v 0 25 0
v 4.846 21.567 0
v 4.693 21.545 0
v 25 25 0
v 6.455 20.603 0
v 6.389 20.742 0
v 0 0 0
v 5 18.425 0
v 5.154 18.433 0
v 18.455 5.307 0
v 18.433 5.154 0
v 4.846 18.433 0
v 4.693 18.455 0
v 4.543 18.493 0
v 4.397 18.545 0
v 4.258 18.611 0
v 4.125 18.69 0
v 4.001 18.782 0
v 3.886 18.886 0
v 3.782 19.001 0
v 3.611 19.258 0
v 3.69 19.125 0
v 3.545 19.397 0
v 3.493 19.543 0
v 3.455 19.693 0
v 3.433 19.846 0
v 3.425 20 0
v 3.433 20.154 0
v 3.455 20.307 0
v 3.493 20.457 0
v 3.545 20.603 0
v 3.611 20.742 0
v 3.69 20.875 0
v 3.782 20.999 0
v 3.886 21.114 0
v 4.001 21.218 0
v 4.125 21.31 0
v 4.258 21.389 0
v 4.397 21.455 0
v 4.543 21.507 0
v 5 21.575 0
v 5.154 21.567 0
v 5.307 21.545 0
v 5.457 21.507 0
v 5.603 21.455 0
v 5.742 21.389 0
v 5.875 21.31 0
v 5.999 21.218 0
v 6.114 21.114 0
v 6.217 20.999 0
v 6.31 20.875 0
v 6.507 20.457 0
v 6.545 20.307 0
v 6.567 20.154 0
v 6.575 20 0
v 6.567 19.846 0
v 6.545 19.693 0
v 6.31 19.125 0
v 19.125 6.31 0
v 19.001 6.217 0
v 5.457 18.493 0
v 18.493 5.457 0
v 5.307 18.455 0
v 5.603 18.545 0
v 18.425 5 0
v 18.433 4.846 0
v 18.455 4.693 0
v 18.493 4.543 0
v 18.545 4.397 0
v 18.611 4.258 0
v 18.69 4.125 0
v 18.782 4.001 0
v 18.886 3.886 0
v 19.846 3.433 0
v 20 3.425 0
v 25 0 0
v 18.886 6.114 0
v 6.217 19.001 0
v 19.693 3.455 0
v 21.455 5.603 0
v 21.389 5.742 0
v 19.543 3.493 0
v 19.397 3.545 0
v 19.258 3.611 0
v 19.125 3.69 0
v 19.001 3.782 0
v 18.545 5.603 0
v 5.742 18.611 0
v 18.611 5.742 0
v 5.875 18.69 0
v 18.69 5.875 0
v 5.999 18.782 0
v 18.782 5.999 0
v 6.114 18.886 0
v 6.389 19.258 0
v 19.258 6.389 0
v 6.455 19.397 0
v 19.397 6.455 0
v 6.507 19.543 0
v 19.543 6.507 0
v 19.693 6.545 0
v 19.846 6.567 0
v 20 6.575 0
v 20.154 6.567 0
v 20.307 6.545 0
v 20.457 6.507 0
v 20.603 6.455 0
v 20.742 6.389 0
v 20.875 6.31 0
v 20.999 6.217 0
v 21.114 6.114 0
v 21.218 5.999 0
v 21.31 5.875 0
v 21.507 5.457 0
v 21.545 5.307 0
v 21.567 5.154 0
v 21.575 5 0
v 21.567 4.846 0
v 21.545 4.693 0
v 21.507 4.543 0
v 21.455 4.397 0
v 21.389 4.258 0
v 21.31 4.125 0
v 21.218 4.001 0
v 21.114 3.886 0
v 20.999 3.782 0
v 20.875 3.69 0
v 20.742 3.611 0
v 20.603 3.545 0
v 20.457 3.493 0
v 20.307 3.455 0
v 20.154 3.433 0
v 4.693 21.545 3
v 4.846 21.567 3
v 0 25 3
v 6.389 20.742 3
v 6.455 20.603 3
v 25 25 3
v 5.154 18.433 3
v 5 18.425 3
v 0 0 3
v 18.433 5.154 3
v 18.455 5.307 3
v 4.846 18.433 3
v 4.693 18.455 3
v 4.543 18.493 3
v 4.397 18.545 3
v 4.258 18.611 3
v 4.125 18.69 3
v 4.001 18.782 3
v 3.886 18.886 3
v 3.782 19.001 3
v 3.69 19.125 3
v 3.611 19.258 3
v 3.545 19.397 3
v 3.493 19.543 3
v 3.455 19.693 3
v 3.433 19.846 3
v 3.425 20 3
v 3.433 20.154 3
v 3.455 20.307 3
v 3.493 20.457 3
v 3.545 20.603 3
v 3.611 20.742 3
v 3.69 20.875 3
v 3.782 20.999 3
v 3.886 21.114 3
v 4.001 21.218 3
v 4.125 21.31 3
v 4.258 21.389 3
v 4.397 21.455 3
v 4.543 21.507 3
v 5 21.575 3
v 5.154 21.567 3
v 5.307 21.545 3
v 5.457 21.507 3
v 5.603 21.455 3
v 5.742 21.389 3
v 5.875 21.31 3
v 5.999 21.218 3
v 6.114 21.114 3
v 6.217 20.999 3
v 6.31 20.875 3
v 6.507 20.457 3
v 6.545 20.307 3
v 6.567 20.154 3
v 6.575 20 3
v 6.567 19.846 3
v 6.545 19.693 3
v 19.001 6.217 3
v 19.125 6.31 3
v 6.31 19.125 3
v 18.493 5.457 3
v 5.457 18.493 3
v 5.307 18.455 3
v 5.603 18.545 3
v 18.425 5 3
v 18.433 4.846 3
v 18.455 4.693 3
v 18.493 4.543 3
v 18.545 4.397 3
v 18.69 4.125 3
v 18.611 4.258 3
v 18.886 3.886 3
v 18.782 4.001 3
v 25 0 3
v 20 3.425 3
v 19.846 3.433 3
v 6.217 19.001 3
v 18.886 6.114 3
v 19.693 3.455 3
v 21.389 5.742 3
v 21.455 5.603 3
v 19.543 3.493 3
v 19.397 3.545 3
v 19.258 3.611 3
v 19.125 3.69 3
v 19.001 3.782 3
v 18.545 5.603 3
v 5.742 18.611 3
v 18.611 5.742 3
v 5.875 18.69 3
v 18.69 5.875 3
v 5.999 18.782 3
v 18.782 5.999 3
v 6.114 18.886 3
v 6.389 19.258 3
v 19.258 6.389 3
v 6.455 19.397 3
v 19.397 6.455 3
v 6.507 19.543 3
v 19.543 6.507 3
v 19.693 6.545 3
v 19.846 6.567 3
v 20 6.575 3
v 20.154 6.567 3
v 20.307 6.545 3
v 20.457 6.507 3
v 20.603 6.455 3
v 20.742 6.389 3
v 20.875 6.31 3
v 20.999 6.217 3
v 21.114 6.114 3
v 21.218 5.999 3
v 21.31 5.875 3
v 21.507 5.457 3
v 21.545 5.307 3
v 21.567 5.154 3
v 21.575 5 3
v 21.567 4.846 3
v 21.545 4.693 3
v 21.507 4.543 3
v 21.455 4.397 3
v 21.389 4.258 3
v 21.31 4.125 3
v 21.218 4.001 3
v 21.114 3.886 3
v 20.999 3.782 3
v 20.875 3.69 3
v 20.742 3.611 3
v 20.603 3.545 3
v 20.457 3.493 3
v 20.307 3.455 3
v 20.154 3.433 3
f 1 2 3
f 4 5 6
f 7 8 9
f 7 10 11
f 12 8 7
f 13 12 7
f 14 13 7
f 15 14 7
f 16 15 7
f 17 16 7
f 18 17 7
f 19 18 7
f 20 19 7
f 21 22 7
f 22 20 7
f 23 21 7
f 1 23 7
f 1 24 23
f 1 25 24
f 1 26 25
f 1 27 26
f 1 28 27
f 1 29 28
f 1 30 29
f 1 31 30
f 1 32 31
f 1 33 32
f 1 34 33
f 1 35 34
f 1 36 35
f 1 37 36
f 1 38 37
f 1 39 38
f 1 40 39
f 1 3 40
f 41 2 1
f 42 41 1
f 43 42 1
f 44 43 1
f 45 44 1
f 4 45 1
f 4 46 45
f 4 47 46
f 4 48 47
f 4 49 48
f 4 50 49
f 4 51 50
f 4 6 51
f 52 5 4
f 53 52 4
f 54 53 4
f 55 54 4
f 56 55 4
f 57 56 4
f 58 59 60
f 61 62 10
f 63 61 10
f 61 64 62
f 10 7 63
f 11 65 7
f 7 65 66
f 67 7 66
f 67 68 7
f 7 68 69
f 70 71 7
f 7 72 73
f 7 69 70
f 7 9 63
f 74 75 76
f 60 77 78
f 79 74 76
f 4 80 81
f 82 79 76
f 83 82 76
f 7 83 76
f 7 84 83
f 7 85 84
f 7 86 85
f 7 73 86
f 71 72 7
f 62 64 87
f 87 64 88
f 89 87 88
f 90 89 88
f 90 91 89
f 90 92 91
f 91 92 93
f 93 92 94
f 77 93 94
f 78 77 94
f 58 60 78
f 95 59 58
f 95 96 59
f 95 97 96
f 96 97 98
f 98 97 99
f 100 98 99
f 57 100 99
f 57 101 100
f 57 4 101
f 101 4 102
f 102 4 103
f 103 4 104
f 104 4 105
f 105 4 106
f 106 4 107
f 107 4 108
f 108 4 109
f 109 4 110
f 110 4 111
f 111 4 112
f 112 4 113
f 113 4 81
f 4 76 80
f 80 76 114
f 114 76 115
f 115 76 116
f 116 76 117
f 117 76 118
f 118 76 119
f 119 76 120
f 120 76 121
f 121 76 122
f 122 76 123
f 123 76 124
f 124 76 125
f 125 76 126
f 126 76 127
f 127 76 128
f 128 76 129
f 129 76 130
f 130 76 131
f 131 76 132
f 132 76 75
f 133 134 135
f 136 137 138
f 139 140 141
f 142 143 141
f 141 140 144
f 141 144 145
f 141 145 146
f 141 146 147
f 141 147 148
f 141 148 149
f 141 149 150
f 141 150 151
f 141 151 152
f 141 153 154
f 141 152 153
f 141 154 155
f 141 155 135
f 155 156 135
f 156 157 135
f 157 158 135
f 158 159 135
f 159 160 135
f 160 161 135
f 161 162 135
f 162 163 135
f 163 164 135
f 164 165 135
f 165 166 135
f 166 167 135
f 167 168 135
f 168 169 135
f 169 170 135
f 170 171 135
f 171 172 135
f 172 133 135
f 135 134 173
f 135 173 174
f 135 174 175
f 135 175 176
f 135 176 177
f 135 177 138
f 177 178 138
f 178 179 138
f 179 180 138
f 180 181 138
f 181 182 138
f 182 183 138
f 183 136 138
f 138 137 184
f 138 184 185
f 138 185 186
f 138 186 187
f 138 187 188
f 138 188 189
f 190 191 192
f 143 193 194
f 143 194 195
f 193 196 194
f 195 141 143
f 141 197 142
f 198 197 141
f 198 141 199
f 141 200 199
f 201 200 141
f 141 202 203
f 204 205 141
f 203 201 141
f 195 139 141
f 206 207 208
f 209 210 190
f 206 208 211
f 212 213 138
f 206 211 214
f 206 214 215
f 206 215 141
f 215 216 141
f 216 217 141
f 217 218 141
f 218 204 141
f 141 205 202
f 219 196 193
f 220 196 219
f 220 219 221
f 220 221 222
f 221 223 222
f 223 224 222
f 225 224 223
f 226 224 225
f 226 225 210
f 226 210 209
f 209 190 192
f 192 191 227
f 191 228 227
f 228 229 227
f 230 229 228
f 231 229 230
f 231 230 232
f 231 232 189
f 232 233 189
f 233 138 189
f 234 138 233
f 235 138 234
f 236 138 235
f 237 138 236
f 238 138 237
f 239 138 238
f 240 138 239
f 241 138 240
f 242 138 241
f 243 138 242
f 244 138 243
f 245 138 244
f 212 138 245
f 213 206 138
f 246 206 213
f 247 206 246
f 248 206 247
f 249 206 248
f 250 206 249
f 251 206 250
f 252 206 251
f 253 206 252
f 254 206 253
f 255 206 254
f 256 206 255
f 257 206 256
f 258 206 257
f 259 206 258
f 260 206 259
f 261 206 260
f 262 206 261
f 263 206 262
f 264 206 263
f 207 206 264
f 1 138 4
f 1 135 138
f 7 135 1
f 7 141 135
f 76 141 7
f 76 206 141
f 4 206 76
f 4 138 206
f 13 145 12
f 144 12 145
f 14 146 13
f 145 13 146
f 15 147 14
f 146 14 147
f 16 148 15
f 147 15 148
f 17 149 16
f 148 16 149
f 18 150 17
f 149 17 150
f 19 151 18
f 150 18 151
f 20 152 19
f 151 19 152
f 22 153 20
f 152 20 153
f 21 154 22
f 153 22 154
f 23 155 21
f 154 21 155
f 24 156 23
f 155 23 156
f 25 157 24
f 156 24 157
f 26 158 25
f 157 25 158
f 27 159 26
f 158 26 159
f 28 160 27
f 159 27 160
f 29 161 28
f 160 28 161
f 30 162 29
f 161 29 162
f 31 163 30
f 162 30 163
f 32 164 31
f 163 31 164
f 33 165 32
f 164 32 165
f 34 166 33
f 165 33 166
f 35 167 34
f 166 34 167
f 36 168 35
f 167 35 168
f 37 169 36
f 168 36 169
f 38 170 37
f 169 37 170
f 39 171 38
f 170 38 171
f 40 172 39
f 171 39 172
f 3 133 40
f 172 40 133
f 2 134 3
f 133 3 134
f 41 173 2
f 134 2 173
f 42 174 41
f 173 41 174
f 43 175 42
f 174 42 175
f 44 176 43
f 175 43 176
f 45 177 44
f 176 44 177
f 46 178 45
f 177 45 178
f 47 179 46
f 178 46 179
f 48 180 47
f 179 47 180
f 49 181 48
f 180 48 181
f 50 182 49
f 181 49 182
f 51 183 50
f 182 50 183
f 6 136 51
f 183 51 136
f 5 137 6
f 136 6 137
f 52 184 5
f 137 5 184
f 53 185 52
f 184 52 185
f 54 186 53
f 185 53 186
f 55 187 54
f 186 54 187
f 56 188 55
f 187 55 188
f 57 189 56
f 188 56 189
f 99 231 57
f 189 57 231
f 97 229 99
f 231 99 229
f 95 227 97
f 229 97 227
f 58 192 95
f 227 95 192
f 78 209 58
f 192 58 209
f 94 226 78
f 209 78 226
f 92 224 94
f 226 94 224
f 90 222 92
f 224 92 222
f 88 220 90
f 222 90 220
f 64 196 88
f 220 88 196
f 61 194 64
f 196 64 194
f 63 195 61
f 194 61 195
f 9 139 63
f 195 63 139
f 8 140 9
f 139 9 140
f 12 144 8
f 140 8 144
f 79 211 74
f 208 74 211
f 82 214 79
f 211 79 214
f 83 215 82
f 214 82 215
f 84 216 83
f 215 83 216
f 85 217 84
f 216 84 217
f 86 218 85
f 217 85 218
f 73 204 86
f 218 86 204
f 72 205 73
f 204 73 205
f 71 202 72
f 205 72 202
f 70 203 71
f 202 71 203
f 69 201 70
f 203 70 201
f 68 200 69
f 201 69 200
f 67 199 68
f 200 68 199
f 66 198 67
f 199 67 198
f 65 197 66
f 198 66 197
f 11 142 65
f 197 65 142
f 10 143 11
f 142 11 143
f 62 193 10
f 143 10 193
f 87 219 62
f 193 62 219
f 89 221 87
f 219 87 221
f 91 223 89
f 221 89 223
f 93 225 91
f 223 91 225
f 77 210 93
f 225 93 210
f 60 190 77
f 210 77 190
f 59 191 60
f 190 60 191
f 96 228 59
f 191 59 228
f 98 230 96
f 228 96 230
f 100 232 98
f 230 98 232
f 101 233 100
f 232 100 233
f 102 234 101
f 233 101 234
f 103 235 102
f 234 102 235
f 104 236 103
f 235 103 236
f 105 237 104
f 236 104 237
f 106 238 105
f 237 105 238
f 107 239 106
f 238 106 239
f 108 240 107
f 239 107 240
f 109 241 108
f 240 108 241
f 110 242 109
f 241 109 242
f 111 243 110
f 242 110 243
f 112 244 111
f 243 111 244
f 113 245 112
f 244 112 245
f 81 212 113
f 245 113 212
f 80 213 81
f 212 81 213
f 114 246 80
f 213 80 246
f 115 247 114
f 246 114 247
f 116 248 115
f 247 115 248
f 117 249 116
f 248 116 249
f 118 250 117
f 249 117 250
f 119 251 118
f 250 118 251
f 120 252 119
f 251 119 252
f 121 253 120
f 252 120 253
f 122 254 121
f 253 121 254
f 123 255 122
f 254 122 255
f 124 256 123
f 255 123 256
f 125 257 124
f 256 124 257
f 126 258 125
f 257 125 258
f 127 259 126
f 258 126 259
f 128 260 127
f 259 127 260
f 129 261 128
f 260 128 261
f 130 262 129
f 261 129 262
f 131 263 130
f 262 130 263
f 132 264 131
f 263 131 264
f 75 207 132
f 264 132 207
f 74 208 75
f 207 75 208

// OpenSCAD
// file: miniature-bases/common/params.scad
$fn = $preview ? 32 : 64;

// Value of kerf to apply when lasercutting things.
// Value is based on the experience using Epilog Mini machine in
// Google WFC Makerspace.
kerf = 0.2;

// Spacing between insert and miniatures bases to allow to slick fit.
insert_spacing = 0.2;
magnet_spacing = 0.15;

// Default values
//
// Default diameter of magnets used for my miniatures.
default_magnet_diameter = 3;
base_height = 3;
pin_height = 2.5;
// file: miniature-bases/common/kow.scad
include <params.scad>;

module MagnetSockets(unit_type, only_diagonal = false) {
  baseSize = BaseSize(unit_type);

  translate([ 5, baseSize[1] - 5 ]) children(0);
  translate([ baseSize[0] - 5, 5 ]) children(0);

  if (!only_diagonal) {
    translate([ 5, 5 ]) children(0);
    translate([ baseSize[0] - 5, baseSize[1] - 5 ]) children(0);
  }
}

module Magnet(d = default_magnet_diameter, offset = 0) {
  circle(d = d + offset);
}

module BM4Sockets(unit_type, spacing, only_diagonal = false) {
  MagnetSockets(unit_type = unit_type, only_diagonal = only_diagonal) {
    Magnet(offset = spacing);
  }
}

module Base(unit_type, extraMargin = [ 0, 0 ]) {
  square(BaseSize(unit_type) + extraMargin);
}

function BaseSize(unit_type) = unit_type == "infantry"         ? [ 20, 20 ]
                               : unit_type == "heavy_infantry" ? [ 25, 25 ]
                               : unit_type == "cavalry"        ? [ 25, 50 ]
                               : unit_type == "lrginf"         ? [ 40, 40 ]
                               : unit_type == "lrgcav"         ? [ 50, 50 ]
                               : unit_type == "titan"          ? [ 75, 75 ]
                                                               : [ 10, 10 ];

function BaseNum(unit_type, unitSize) =
    unit_type == "infantry"  ? unitSize == "legion"     ? [ 10, 6 ]
                               : unitSize == "horde"    ? [ 10, 4 ]
                               : unitSize == "regiment" ? [ 5, 4 ]
                                                        : [ 5, 2 ]
    : unit_type == "cavalry" ? unitSize == "regiment" ? [ 5, 2 ] : [ 5, 1 ]
    : unit_type == "lrginf"  ? unitSize == "regiment" ? [ 3, 1 ] : [ 3, 2 ]
    : unit_type == "lrgcav"  ? unitSize == "regiment" ? [ 3, 1 ]
                               : unitSize == "horde"  ? [ 3, 2 ]
                                                      : [ 1, 1 ]
                             : [ 1, 1 ];
// file: miniature-bases/libbase.scad
include <common/kow.scad>;

module MagnetHole() { Magnet(offset = magnet_spacing); } 

module BaseBM4(unit_type, only_diagonal = false) {
  linear_extrude(height = base_height) {
    difference() {
      Base(unit_type = unit_type);
      union() {
        MagnetSockets(unit_type = unit_type, only_diagonal = only_diagonal) {
          MagnetHole();
        }
        children();
      }
    }
  }
}

SLOTTA_ANGLE = 0;
SLOTTA_SLOT_MARGIN = 1.5; 
SLOT_WIDTH = 1.7;  


module SlottaBM4(a = SLOTTA_ANGLE, unit_type = "infantry", slot_margin = SLOTTA_SLOT_MARGIN) {
  base_size = BaseSize(unit_type);

  // slot_length = 18; for a = 0 (as in GW bases)
  // total_slot_margin = 4; for a = 45 (as in GW bases)

  slot_length =
      (base_size[0] - 2 * slot_margin - cos(90 - a) * SLOT_WIDTH) / cos(a);

  BaseBM4(unit_type = unit_type, only_diagonal = true) {
    translate(0.5 * base_size) rotate(a)
        square([ slot_length, SLOT_WIDTH ], center = true);
  };
}

module CavalrySlot() {
  slotWidth = 2.5;
  slotLength = 35;
  slotSpacing = 2.8;
  baseSize = BaseSize("cavalry");

  translate([
    (baseSize[0] - 2 * slotWidth - slotSpacing) / 2,
    (baseSize[1] - slotLength) / 2
  ]) {
    square([ slotWidth, slotLength ]);
    translate([ slotSpacing + slotWidth, 0 ]) square([ slotWidth, slotLength ]);
  }
}
// main file
use <miniature-bases/libbase.scad>

BaseBM4("heavy_infantry", only_diagonal = true);
